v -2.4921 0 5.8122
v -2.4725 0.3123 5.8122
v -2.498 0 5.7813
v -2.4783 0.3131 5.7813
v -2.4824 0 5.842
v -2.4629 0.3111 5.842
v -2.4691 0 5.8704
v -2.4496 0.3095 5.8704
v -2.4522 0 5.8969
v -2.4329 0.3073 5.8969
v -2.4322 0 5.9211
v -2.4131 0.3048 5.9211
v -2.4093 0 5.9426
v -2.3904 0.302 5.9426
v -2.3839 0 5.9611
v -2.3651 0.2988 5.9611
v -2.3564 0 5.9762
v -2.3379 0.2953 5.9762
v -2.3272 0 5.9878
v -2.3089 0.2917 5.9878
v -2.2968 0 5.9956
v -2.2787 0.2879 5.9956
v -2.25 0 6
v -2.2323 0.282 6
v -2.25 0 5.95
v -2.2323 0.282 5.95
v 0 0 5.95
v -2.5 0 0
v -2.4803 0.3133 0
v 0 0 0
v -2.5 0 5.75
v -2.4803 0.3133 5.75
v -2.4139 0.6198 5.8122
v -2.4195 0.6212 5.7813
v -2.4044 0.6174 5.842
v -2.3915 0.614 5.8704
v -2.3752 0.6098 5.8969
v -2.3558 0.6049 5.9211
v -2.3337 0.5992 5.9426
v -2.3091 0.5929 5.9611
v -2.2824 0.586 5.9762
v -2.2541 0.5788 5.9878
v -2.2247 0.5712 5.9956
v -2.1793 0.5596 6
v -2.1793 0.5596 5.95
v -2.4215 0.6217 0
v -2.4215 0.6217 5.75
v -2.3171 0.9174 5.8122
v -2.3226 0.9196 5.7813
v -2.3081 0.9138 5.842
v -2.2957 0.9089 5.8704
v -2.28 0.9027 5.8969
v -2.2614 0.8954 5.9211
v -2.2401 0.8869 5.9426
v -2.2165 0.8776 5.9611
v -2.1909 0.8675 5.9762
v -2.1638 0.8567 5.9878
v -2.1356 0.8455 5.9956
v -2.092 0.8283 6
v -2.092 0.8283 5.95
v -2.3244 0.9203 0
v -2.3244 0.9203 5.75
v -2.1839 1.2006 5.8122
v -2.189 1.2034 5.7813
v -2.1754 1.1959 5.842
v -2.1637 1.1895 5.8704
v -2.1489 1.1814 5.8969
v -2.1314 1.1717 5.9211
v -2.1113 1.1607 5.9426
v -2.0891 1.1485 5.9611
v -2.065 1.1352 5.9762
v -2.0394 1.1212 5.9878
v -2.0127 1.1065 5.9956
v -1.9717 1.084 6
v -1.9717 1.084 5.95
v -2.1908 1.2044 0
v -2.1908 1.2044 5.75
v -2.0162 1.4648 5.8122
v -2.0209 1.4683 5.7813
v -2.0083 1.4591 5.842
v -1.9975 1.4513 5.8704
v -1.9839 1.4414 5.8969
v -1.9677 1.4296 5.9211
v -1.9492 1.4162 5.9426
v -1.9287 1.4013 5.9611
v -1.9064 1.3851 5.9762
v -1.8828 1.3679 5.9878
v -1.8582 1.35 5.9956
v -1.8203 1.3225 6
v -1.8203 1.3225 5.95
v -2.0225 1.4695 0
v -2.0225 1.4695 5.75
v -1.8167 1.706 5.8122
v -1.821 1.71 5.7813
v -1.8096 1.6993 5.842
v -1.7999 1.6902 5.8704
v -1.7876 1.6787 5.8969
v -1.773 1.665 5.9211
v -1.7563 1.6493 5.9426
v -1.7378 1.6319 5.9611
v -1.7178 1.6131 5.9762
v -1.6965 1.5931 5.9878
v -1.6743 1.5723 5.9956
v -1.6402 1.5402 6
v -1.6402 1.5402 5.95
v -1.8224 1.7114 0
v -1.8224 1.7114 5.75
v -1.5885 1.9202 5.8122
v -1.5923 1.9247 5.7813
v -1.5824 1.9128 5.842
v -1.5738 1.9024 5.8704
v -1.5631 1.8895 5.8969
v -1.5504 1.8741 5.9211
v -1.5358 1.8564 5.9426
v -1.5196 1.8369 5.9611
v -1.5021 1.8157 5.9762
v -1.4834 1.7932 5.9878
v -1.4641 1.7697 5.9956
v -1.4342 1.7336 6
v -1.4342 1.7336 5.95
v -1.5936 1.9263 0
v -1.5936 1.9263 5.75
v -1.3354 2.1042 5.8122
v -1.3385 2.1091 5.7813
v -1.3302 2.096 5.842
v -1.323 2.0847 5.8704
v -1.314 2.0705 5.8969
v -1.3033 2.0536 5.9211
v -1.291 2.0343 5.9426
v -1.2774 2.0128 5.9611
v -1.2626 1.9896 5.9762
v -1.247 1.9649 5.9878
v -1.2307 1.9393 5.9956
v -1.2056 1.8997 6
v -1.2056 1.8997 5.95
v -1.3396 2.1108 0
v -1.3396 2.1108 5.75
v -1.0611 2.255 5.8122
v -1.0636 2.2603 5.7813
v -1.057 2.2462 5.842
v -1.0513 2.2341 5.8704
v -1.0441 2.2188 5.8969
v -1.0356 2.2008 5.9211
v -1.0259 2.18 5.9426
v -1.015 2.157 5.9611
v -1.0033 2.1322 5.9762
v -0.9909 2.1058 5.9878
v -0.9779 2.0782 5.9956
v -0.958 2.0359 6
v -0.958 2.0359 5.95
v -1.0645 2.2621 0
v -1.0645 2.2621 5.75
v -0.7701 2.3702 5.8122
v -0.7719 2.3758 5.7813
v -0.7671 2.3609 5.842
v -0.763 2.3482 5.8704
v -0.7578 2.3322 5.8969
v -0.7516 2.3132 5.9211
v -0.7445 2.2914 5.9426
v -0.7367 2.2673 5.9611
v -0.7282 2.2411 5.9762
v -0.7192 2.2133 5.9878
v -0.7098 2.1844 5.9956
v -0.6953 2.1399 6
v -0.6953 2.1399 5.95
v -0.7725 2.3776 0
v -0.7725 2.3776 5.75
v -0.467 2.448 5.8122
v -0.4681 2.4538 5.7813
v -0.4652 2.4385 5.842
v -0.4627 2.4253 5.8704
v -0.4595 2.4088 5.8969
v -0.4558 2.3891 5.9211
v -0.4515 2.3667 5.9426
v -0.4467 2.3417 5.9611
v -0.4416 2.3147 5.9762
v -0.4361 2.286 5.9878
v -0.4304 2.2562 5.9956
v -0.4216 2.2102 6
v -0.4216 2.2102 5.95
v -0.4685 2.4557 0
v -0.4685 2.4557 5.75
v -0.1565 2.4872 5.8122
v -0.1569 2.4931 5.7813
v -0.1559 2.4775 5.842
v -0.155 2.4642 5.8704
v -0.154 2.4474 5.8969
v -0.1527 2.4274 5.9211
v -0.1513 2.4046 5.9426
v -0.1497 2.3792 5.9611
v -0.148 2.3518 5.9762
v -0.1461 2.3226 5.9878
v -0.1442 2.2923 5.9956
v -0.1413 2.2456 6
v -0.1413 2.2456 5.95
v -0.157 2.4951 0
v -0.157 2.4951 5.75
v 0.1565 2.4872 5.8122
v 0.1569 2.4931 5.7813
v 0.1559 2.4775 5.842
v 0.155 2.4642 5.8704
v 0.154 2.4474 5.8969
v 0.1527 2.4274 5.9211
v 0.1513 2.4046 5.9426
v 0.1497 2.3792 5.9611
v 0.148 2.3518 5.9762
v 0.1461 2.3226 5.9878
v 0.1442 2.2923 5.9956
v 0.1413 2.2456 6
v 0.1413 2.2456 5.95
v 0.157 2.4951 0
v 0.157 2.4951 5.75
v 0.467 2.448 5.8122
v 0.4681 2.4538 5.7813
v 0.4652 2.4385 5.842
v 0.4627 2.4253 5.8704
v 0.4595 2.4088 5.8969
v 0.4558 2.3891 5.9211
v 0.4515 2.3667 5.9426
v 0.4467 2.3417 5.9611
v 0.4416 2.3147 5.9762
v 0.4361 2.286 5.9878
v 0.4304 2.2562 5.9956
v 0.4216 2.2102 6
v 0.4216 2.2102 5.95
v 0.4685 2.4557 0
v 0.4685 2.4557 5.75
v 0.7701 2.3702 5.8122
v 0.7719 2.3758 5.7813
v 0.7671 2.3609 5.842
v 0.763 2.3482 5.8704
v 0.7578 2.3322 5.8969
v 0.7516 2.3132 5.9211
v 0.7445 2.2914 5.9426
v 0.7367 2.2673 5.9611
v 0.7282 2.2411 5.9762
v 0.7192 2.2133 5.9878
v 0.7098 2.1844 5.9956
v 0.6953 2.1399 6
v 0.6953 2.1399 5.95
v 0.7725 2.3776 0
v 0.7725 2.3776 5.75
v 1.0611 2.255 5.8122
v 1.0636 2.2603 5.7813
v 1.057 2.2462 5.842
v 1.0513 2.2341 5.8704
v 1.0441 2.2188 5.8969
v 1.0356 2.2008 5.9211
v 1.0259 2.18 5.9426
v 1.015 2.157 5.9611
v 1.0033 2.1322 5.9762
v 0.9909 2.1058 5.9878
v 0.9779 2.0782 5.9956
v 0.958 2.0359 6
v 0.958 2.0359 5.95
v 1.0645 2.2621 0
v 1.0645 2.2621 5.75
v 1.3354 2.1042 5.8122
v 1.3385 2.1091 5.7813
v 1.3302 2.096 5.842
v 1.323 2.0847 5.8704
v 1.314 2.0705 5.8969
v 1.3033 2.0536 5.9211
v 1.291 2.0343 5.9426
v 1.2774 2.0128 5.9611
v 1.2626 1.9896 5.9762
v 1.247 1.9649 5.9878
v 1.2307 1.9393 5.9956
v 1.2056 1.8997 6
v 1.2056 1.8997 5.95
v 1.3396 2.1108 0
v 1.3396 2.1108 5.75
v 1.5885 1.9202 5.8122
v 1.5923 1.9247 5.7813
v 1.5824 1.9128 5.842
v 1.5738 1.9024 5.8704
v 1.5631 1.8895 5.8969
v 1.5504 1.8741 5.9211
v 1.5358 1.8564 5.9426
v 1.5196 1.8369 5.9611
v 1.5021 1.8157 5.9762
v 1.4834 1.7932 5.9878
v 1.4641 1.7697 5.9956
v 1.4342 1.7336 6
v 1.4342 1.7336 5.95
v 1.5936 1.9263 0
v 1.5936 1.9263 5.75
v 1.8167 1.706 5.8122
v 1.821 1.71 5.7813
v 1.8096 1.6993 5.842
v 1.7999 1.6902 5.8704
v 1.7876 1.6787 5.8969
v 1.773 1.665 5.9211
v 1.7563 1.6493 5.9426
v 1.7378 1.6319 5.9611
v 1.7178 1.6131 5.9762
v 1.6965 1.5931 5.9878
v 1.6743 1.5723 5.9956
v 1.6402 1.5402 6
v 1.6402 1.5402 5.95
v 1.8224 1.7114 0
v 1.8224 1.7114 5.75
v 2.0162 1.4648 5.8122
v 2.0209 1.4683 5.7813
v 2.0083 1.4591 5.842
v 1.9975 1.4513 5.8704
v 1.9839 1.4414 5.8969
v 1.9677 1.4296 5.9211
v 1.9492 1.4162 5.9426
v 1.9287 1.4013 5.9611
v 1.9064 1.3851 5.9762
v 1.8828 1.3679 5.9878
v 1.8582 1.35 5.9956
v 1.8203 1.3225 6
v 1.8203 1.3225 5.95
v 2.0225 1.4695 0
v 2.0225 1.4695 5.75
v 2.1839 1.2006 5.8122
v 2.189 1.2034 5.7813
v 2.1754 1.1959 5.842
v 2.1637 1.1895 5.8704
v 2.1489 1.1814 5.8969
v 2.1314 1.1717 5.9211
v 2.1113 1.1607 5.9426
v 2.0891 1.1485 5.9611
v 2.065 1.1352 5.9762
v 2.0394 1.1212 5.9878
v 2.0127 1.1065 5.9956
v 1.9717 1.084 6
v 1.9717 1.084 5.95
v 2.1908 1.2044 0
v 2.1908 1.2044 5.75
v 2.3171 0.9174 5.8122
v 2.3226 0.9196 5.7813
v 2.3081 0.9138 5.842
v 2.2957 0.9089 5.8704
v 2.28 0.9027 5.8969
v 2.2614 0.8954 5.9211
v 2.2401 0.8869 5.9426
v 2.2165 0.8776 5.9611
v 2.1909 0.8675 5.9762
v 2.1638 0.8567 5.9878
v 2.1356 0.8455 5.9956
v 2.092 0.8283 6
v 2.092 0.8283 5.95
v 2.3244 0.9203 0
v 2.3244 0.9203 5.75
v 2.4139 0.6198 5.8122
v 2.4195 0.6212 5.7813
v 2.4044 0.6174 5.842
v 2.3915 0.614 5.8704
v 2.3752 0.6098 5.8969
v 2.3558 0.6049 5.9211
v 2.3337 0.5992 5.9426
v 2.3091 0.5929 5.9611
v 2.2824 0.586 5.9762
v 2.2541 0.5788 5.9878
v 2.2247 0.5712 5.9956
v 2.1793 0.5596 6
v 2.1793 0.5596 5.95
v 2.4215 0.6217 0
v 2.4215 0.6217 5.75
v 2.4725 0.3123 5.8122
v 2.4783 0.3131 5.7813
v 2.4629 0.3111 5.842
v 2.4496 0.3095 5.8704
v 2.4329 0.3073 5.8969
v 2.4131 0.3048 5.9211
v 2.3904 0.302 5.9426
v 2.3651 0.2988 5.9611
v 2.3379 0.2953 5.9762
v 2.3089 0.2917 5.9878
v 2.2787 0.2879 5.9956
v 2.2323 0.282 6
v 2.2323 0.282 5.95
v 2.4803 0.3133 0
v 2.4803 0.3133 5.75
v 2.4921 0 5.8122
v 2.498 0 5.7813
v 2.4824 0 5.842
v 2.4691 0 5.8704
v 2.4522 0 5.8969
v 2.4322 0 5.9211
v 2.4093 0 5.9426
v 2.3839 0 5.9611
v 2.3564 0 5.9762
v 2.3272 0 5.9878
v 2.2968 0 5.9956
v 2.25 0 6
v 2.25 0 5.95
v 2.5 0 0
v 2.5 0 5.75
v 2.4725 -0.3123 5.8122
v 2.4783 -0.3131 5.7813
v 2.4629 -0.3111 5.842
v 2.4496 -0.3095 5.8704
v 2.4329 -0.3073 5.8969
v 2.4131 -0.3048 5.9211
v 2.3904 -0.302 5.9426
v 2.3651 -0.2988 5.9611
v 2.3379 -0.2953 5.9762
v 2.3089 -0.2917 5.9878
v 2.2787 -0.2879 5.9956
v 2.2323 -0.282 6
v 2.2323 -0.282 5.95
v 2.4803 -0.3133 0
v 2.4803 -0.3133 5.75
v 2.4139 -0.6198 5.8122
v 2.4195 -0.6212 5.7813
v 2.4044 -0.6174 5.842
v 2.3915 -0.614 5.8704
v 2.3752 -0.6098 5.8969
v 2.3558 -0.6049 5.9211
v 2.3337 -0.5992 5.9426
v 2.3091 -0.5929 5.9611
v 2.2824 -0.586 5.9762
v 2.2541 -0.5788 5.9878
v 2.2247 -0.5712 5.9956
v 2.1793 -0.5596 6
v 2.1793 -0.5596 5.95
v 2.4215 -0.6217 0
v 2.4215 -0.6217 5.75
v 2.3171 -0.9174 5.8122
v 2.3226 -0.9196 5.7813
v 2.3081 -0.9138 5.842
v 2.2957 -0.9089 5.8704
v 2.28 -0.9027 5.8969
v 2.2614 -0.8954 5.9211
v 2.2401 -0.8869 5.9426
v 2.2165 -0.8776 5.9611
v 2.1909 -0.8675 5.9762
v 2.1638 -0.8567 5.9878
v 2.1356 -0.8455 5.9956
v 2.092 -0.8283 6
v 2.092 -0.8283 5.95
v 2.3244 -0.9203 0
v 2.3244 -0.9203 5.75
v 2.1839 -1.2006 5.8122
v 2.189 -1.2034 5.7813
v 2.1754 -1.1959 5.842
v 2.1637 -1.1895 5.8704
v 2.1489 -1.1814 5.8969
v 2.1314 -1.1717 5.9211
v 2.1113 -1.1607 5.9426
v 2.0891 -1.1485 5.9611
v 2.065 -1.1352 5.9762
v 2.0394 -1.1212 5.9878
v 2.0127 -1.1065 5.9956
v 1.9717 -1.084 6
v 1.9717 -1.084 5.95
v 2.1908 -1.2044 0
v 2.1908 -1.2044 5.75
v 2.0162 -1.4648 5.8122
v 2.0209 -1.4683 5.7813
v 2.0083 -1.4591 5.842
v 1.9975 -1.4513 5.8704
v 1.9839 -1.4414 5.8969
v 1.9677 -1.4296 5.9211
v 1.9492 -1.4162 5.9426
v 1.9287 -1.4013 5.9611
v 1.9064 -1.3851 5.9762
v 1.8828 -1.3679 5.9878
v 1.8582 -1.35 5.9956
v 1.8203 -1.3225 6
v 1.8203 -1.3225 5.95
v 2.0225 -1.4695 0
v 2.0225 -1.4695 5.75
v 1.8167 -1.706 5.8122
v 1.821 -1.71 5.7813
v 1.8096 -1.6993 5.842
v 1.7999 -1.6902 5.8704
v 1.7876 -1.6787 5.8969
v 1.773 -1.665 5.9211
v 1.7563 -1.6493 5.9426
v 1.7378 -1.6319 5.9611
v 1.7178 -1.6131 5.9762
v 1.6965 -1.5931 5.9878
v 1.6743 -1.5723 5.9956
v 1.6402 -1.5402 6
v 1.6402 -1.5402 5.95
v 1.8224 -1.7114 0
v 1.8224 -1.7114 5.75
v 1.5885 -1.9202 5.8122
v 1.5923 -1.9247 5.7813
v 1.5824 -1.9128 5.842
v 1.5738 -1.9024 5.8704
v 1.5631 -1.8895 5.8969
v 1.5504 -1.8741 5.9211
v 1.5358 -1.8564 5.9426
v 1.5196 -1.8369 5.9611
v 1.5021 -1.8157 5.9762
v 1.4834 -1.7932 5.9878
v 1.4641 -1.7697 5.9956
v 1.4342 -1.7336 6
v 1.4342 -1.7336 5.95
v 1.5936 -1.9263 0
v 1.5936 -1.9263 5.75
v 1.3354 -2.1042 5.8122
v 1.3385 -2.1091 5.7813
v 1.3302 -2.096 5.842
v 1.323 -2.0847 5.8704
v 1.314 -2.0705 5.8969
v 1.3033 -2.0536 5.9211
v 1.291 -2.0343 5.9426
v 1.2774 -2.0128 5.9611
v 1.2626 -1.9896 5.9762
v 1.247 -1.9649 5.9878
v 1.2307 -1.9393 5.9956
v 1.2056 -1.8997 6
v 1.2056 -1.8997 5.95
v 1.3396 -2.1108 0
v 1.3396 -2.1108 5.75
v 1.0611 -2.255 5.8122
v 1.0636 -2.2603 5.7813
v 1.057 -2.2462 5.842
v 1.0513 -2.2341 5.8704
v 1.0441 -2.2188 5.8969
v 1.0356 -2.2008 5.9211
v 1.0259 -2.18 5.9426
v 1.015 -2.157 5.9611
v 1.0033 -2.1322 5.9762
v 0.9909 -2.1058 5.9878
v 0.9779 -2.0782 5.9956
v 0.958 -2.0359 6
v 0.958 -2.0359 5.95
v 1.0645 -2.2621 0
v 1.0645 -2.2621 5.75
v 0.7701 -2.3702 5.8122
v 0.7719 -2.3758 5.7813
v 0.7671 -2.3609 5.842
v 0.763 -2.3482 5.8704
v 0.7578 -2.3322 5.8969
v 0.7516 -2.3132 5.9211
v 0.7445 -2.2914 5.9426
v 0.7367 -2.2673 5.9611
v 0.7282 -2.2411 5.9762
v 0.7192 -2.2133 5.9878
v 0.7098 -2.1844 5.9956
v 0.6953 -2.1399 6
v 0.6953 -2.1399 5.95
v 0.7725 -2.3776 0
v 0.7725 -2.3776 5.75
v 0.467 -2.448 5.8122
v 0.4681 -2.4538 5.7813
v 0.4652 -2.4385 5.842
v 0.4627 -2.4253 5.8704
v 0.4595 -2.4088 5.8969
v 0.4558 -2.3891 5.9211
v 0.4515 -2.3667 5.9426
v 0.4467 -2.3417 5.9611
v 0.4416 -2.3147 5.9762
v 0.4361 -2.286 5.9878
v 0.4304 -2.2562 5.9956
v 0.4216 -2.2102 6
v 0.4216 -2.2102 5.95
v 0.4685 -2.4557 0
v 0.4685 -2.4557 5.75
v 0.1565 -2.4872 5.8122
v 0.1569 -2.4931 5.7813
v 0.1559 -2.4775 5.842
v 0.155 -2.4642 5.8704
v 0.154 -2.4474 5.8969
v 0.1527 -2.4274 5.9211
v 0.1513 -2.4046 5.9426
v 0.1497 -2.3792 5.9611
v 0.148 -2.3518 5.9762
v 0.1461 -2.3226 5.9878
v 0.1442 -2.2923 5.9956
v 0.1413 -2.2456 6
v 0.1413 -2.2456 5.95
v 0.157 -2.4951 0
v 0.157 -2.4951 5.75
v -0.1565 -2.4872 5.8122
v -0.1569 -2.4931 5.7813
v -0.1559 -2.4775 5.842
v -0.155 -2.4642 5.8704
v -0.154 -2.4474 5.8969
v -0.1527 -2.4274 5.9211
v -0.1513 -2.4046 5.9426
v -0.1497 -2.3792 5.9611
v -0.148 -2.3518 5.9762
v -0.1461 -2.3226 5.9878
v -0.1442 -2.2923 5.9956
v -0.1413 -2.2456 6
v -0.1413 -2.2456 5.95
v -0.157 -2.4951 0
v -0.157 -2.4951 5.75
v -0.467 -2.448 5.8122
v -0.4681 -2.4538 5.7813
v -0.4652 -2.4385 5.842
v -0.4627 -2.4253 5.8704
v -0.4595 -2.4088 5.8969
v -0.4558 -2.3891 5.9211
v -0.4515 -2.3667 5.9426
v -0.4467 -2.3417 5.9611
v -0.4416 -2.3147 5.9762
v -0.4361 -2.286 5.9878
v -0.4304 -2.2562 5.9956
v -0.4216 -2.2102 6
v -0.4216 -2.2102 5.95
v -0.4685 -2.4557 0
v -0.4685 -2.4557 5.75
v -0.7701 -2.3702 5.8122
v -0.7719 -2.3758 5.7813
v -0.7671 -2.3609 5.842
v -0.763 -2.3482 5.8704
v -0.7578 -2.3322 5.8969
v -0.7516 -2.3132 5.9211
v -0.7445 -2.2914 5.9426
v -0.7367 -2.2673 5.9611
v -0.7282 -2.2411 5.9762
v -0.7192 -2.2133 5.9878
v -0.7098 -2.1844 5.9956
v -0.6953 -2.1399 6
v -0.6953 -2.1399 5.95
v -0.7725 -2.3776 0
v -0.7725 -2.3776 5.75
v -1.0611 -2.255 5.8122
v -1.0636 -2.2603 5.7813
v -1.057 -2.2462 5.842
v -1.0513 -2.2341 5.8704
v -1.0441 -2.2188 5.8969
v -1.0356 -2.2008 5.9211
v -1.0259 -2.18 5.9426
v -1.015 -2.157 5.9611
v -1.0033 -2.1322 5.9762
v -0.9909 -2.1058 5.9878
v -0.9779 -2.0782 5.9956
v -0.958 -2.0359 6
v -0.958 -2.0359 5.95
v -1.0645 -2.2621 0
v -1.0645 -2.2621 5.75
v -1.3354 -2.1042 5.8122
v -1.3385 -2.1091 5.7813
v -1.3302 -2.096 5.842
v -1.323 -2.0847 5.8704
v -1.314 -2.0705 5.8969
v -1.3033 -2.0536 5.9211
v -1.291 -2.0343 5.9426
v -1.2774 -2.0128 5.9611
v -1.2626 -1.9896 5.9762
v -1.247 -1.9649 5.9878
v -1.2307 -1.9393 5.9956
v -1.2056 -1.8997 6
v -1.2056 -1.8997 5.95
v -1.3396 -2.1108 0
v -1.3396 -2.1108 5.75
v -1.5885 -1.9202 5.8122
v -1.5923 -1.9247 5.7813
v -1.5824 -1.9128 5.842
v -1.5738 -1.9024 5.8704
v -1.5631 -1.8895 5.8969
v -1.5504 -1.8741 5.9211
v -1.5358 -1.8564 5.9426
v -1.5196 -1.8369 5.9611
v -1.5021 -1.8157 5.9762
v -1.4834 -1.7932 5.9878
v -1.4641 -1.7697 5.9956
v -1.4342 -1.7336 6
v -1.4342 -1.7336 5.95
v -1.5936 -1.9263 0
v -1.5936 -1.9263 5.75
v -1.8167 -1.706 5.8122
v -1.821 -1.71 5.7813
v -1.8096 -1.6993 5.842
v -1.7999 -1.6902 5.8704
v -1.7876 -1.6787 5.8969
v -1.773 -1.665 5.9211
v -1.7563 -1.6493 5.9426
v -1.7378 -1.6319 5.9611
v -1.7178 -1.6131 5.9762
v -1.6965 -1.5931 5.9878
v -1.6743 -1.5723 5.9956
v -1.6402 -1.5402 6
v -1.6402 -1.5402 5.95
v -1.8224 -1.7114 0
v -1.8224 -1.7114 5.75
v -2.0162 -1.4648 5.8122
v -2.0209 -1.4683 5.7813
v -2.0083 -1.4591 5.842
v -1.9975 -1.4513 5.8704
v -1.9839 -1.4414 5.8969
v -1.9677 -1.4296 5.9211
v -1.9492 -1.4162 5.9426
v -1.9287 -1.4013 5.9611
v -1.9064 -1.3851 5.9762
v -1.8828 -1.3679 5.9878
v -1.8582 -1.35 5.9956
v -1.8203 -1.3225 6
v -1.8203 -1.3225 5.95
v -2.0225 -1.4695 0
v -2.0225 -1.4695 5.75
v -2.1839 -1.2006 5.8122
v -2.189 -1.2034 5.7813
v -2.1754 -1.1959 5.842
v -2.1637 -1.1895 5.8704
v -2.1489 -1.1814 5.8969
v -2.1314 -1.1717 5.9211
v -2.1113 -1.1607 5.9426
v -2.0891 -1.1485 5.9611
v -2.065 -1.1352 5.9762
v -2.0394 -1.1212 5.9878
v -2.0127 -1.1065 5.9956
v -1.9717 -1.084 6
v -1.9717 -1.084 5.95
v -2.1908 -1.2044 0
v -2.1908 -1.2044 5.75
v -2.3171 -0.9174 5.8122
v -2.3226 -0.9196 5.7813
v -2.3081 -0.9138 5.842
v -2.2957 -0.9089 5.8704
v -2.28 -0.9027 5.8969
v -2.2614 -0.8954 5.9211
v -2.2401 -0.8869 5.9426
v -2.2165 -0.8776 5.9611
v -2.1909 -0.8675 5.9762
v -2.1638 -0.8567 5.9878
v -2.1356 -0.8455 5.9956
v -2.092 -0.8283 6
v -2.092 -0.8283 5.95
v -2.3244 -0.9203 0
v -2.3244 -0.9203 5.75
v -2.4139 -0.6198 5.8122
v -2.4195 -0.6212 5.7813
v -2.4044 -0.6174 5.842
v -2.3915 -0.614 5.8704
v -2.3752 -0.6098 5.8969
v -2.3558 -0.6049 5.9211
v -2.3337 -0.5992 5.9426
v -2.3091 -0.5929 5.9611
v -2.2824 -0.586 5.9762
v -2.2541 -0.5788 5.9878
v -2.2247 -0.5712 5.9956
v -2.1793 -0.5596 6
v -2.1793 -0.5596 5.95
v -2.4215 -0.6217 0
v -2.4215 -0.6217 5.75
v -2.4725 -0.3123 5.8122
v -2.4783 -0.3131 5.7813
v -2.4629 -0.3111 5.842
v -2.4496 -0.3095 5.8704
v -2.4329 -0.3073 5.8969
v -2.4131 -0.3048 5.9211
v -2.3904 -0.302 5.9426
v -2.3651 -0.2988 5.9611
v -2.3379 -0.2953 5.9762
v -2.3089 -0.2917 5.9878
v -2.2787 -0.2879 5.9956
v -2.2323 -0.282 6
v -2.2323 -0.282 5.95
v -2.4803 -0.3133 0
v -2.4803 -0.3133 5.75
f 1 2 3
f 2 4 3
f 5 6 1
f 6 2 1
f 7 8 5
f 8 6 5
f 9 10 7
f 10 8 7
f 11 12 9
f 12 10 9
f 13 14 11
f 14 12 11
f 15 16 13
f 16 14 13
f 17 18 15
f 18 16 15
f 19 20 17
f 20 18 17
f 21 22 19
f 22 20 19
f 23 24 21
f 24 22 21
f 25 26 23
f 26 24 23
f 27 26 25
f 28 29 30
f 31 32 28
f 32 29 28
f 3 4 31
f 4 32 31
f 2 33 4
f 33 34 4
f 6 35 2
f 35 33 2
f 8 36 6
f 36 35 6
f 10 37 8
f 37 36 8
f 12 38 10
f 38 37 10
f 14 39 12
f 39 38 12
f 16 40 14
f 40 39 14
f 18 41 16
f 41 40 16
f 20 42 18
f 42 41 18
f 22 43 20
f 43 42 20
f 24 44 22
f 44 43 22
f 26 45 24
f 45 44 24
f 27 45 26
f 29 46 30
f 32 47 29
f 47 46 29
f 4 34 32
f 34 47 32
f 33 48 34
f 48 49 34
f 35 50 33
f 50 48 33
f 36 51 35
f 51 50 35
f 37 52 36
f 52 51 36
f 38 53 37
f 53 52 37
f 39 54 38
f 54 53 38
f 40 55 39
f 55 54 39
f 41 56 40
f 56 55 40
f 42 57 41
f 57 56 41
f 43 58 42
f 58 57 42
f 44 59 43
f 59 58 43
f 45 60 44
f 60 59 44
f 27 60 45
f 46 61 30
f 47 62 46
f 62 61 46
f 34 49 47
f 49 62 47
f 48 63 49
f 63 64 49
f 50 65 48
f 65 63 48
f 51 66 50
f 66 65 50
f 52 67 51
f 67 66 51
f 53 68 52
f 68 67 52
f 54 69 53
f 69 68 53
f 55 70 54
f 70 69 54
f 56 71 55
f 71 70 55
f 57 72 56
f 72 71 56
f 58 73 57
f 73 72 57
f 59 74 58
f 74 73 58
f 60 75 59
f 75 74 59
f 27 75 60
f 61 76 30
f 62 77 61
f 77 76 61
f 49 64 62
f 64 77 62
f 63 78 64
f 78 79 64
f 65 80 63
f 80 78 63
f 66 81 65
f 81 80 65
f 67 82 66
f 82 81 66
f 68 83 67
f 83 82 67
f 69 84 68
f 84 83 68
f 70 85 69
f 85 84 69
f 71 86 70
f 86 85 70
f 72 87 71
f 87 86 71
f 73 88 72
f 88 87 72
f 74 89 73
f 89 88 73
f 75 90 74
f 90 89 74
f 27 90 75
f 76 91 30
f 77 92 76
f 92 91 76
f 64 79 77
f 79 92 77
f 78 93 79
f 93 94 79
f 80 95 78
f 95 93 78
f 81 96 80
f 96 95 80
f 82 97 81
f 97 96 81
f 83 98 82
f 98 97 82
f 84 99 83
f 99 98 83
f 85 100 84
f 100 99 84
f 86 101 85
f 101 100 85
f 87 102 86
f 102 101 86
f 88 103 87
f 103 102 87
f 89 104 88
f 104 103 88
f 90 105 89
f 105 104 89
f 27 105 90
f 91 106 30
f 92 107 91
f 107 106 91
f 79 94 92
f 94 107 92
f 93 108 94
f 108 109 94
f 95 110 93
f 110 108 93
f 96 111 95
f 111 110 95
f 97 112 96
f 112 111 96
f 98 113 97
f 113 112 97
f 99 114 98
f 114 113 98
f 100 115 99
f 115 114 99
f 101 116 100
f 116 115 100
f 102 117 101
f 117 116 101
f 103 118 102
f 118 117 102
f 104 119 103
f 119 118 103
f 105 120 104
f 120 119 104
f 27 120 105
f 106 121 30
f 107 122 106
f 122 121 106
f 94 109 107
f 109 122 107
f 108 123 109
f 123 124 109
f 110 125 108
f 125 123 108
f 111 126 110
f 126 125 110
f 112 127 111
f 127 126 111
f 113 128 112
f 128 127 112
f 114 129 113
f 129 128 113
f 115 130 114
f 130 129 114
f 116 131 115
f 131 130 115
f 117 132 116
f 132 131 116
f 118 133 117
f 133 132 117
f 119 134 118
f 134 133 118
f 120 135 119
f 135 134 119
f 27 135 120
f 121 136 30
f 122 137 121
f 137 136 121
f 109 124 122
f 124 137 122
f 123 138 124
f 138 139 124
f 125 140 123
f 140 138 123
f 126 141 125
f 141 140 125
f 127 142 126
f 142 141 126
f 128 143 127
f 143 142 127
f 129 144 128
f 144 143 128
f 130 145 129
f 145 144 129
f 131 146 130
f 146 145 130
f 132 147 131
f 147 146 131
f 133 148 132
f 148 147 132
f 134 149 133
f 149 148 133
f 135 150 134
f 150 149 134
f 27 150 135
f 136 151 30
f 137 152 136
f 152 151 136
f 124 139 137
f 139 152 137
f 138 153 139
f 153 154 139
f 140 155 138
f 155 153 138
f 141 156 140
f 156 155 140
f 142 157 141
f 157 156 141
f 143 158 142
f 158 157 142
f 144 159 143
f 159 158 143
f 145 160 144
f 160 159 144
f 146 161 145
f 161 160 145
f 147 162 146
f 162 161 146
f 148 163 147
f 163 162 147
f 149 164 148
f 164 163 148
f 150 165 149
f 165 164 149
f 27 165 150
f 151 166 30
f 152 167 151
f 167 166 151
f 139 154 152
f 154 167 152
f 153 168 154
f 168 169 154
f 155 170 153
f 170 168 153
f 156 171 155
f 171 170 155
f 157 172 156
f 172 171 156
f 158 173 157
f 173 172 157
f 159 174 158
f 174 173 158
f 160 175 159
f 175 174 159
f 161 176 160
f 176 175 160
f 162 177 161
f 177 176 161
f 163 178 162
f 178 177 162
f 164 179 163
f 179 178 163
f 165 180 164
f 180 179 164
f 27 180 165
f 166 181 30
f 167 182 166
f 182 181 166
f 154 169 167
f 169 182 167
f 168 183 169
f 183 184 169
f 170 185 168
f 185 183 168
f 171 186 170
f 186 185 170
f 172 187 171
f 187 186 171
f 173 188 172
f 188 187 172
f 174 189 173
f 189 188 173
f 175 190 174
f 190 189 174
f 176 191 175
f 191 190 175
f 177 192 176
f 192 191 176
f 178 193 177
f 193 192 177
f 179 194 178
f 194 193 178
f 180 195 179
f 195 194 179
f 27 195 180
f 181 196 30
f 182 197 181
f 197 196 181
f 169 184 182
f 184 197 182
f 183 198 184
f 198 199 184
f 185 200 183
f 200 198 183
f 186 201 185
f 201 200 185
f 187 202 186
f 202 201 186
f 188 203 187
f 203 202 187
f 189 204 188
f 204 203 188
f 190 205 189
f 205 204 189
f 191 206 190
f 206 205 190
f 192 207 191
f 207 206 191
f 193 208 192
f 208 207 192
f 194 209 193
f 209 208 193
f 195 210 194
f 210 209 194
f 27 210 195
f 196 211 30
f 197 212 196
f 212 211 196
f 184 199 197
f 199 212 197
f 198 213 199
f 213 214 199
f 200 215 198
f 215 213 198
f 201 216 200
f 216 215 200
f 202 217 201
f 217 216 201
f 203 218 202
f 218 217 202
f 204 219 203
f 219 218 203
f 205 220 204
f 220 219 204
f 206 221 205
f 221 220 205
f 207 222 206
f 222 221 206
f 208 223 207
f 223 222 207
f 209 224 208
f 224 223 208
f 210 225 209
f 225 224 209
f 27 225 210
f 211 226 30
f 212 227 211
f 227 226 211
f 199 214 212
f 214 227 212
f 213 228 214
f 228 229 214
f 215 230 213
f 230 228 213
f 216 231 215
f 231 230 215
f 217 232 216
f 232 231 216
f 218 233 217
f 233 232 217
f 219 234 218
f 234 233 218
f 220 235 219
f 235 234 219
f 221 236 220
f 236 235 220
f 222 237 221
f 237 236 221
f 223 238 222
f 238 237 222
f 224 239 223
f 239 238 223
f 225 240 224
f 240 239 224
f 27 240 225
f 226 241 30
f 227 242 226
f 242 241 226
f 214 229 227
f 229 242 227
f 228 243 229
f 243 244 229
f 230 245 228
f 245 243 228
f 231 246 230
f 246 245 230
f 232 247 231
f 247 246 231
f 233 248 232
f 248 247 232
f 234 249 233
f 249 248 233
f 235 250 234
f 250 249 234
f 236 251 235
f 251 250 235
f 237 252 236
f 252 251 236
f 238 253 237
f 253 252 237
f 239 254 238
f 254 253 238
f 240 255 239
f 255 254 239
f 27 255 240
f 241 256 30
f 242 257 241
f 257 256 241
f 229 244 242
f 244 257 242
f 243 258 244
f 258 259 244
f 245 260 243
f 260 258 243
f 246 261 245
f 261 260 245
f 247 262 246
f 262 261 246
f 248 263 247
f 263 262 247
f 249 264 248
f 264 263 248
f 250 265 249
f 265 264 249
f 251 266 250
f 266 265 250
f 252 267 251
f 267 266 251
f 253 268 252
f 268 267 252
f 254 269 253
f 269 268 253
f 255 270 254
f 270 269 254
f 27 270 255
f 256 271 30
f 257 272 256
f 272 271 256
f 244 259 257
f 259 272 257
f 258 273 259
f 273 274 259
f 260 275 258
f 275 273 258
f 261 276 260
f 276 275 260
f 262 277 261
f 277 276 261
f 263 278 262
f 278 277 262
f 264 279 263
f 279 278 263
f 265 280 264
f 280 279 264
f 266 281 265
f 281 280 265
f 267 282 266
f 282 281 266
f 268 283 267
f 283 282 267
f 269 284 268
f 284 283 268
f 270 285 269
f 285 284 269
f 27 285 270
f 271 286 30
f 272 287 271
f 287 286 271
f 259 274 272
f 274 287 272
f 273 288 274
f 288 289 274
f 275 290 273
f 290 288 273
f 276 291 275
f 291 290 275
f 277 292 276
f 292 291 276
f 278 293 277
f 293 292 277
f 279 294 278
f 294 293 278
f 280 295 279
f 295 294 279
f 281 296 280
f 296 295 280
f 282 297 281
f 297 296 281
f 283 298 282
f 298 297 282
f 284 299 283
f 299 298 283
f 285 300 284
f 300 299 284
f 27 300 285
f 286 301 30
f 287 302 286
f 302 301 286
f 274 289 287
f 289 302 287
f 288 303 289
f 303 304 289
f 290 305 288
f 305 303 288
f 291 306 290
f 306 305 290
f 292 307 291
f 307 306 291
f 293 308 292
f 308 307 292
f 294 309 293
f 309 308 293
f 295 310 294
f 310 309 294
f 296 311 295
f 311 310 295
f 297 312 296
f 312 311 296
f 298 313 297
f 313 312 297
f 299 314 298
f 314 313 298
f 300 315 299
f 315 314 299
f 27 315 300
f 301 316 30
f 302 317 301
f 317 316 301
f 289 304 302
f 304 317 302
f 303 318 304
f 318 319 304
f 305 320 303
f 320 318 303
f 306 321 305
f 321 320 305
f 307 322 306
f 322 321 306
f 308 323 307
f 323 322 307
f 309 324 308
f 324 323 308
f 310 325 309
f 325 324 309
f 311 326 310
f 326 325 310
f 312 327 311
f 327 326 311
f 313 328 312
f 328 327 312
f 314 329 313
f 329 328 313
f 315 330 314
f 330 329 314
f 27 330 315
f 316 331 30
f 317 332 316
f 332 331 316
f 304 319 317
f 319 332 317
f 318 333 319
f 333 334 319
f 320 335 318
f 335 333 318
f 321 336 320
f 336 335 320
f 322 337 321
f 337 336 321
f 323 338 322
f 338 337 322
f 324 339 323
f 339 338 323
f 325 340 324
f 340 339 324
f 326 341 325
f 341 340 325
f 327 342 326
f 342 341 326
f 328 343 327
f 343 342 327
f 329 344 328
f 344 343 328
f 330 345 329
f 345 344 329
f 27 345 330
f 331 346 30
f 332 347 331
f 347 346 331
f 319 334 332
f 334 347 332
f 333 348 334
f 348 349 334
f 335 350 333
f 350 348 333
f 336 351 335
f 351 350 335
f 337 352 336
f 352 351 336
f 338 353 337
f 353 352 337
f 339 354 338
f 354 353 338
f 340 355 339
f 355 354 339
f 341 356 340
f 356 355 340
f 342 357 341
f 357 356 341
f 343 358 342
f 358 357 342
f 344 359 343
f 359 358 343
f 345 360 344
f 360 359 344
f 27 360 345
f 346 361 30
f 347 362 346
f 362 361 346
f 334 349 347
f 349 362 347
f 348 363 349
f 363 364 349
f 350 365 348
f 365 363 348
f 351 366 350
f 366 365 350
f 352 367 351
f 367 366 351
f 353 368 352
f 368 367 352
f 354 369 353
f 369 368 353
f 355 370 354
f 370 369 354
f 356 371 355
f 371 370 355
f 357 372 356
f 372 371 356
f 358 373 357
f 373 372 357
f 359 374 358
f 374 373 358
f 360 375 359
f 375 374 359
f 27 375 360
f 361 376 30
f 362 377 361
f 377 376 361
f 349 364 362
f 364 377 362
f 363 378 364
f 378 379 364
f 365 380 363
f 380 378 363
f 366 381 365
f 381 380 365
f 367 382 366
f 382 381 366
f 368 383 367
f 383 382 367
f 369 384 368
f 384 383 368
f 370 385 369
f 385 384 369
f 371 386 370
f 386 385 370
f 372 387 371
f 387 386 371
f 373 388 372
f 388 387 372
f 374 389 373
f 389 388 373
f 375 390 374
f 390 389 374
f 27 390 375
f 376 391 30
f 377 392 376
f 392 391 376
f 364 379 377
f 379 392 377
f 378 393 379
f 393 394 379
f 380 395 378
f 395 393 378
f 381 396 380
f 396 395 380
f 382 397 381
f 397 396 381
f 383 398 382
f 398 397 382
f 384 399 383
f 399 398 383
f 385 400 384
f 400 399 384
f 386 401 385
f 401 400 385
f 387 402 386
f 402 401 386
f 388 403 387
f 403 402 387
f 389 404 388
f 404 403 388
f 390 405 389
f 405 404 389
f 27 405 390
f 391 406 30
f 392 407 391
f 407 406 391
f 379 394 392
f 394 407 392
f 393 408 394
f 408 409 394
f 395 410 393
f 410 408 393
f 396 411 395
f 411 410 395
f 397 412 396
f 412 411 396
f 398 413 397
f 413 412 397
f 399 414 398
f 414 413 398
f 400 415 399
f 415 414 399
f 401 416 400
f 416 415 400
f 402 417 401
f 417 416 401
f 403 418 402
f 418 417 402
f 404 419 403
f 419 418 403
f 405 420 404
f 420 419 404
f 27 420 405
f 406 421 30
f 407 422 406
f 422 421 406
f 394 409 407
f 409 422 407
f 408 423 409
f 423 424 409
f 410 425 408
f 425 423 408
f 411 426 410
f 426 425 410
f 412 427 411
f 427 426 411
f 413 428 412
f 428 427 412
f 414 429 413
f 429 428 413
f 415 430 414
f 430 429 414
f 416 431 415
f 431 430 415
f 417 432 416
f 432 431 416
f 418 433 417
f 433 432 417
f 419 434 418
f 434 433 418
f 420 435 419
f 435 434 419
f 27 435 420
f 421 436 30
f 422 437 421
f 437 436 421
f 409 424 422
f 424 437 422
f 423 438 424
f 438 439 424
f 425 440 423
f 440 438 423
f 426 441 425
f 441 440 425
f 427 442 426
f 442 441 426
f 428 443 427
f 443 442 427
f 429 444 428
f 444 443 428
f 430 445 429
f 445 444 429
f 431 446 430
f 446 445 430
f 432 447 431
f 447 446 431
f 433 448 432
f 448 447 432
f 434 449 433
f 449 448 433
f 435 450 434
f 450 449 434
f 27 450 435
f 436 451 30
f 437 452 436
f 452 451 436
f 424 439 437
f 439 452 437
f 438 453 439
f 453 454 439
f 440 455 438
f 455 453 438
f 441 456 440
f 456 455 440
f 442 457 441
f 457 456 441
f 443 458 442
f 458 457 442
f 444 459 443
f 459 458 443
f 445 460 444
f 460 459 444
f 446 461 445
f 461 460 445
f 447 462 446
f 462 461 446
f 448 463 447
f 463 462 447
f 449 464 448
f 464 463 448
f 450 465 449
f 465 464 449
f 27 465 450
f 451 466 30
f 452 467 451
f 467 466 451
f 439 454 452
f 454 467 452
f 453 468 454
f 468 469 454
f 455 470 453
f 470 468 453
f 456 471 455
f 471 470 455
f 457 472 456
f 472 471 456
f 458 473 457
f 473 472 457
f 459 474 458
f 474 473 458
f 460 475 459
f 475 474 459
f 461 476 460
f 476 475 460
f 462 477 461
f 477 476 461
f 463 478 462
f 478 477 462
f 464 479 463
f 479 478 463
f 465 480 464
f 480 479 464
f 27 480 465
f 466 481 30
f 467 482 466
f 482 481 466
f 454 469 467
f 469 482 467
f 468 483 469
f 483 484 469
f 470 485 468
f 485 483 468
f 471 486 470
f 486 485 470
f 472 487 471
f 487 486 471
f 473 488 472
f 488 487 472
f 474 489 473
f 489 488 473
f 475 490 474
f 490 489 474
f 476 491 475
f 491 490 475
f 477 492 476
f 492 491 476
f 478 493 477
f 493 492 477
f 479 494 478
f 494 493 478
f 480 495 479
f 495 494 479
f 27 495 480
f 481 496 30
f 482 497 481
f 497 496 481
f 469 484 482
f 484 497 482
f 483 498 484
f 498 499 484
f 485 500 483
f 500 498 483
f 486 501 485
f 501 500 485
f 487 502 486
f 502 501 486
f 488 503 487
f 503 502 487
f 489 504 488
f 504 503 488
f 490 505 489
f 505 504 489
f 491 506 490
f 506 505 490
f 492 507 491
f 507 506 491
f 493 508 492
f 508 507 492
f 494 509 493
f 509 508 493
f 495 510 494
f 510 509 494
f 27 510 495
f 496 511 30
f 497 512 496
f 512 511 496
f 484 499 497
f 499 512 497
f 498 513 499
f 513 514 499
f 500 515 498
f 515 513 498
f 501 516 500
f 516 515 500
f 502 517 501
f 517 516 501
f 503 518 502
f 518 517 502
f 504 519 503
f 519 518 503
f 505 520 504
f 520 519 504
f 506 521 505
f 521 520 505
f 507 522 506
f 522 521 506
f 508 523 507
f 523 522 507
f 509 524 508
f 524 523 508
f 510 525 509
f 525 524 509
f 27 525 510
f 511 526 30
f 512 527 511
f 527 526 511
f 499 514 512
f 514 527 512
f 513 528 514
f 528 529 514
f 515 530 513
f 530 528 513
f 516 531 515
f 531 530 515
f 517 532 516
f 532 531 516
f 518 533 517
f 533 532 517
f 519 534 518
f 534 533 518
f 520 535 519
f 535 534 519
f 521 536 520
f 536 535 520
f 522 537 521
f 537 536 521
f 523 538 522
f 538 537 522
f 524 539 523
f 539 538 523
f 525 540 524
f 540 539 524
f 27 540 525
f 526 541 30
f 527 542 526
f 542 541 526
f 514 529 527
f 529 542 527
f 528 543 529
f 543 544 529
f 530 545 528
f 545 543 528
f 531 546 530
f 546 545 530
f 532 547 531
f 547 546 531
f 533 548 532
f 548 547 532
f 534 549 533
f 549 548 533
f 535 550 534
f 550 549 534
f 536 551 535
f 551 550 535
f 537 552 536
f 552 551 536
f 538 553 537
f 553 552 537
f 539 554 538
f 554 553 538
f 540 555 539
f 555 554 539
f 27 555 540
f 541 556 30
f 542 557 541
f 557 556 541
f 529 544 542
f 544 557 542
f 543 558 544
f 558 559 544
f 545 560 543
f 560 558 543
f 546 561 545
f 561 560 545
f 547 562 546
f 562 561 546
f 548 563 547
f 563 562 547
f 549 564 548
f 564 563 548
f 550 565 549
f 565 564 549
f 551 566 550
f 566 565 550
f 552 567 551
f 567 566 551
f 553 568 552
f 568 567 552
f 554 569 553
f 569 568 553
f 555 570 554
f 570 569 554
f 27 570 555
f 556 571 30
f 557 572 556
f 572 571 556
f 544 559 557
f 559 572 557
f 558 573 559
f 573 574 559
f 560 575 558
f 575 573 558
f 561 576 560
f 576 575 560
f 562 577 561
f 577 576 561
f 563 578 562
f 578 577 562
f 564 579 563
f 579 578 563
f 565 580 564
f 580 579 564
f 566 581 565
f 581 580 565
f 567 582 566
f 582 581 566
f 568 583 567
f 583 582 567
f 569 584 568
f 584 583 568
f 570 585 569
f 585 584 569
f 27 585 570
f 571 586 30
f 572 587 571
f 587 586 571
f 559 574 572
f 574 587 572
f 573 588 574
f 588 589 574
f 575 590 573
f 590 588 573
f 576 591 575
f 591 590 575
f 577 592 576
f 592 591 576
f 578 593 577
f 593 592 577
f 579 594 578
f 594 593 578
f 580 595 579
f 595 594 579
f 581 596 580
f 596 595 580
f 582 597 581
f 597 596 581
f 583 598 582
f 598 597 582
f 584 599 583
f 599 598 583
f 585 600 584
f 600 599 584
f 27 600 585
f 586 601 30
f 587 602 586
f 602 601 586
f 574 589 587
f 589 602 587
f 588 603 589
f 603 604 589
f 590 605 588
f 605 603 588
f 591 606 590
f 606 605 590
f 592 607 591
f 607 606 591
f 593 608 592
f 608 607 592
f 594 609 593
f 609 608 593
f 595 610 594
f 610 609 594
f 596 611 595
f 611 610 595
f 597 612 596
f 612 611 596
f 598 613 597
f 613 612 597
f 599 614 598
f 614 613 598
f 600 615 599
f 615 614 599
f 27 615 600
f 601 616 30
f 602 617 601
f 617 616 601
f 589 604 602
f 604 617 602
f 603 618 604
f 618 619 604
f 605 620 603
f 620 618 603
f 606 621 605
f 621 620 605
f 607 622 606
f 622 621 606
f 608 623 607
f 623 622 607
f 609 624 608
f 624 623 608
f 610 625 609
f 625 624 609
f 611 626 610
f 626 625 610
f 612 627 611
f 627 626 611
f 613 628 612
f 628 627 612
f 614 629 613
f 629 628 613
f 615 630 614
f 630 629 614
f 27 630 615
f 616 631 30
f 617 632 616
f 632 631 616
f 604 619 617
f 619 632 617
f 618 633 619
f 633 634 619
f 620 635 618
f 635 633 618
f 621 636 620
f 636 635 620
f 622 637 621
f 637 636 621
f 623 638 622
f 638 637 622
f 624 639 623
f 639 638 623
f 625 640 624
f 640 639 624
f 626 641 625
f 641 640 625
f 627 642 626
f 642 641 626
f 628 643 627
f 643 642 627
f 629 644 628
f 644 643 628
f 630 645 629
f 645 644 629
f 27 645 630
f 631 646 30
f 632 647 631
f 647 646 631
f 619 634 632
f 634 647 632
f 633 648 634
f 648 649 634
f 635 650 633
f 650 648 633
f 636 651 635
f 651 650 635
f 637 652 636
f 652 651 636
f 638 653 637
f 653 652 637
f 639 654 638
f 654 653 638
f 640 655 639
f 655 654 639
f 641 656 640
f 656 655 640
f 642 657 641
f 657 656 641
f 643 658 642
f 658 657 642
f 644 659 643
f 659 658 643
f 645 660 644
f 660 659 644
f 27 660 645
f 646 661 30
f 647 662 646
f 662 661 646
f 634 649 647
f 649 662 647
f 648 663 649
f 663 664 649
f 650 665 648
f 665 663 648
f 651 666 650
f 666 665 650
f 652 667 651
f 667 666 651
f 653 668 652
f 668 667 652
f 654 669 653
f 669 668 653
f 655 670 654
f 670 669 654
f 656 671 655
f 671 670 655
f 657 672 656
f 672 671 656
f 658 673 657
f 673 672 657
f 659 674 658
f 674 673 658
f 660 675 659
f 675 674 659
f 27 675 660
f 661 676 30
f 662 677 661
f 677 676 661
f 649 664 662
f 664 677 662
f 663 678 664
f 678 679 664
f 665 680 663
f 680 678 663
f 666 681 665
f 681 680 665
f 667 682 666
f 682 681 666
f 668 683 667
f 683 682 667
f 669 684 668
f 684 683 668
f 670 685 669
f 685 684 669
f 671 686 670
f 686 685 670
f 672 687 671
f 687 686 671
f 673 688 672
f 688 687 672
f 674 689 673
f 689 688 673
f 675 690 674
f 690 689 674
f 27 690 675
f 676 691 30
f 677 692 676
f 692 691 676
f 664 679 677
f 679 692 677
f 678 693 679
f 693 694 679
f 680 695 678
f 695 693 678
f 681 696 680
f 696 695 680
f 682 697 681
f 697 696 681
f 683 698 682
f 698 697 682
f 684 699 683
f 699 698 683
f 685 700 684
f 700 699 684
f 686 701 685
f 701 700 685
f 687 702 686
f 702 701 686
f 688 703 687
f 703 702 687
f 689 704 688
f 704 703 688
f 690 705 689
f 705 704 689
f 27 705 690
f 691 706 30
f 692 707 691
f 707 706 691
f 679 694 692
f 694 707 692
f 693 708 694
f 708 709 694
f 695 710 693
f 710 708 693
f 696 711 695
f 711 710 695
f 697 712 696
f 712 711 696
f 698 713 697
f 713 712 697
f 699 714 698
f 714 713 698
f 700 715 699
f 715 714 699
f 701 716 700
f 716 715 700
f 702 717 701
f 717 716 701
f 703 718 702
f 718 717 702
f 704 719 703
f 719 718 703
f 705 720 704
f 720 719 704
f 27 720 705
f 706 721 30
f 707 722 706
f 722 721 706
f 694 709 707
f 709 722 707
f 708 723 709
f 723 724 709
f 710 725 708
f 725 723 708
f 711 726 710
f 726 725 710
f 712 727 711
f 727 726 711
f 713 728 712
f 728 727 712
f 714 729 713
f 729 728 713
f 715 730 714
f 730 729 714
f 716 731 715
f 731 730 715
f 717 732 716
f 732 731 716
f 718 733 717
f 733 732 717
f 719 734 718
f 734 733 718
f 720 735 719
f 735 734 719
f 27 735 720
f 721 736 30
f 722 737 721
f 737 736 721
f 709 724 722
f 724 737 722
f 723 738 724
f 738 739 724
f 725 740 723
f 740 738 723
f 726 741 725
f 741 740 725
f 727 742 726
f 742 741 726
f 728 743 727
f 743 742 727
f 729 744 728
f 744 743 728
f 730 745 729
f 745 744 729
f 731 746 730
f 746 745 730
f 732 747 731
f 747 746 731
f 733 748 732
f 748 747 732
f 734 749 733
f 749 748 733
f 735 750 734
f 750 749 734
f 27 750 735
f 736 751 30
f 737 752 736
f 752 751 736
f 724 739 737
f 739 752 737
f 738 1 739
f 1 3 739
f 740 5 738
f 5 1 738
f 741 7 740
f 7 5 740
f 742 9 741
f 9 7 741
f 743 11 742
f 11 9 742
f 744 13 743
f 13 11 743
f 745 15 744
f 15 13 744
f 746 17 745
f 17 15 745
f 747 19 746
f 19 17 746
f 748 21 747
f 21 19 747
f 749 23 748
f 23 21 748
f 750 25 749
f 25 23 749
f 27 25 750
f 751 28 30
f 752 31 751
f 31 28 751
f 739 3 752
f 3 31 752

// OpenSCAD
mic_h = 6;
mic_w = 5/2; // diameter is 5mm, not radius

// radius of fillet
fillet_r = 0.25;

// the black part of the mic is this deep
// just enough to be able to select it in Wings3D
mic_deep = 0.05;

// increase # of fragments for a smoother shape
smooth = 50;

// rotate 2D shape around Z axis
rotate_extrude($fn = smooth)
difference() {
    // base shape of mic
    square([mic_w, mic_h], 0);
    
    // cuts out the dip for the black part of mic
    translate([0, mic_h-mic_deep, 0])
    square([mic_w-fillet_r, mic_h], 0);

    difference() {
        // create base shape of mic
        square([mic_w, mic_h], 0);
        
        // remove material in X axis
        translate([-fillet_r, 0, 0])
        square([mic_w, mic_h], 0);
        
        // remove material in Y axis
        translate([0, -fillet_r, 0])
        square([mic_w, mic_h], 0);
        
        // create the actual fillet
        translate([mic_w-fillet_r, mic_h-fillet_r, 0])
        circle(fillet_r, $fn = smooth);
    };
}
